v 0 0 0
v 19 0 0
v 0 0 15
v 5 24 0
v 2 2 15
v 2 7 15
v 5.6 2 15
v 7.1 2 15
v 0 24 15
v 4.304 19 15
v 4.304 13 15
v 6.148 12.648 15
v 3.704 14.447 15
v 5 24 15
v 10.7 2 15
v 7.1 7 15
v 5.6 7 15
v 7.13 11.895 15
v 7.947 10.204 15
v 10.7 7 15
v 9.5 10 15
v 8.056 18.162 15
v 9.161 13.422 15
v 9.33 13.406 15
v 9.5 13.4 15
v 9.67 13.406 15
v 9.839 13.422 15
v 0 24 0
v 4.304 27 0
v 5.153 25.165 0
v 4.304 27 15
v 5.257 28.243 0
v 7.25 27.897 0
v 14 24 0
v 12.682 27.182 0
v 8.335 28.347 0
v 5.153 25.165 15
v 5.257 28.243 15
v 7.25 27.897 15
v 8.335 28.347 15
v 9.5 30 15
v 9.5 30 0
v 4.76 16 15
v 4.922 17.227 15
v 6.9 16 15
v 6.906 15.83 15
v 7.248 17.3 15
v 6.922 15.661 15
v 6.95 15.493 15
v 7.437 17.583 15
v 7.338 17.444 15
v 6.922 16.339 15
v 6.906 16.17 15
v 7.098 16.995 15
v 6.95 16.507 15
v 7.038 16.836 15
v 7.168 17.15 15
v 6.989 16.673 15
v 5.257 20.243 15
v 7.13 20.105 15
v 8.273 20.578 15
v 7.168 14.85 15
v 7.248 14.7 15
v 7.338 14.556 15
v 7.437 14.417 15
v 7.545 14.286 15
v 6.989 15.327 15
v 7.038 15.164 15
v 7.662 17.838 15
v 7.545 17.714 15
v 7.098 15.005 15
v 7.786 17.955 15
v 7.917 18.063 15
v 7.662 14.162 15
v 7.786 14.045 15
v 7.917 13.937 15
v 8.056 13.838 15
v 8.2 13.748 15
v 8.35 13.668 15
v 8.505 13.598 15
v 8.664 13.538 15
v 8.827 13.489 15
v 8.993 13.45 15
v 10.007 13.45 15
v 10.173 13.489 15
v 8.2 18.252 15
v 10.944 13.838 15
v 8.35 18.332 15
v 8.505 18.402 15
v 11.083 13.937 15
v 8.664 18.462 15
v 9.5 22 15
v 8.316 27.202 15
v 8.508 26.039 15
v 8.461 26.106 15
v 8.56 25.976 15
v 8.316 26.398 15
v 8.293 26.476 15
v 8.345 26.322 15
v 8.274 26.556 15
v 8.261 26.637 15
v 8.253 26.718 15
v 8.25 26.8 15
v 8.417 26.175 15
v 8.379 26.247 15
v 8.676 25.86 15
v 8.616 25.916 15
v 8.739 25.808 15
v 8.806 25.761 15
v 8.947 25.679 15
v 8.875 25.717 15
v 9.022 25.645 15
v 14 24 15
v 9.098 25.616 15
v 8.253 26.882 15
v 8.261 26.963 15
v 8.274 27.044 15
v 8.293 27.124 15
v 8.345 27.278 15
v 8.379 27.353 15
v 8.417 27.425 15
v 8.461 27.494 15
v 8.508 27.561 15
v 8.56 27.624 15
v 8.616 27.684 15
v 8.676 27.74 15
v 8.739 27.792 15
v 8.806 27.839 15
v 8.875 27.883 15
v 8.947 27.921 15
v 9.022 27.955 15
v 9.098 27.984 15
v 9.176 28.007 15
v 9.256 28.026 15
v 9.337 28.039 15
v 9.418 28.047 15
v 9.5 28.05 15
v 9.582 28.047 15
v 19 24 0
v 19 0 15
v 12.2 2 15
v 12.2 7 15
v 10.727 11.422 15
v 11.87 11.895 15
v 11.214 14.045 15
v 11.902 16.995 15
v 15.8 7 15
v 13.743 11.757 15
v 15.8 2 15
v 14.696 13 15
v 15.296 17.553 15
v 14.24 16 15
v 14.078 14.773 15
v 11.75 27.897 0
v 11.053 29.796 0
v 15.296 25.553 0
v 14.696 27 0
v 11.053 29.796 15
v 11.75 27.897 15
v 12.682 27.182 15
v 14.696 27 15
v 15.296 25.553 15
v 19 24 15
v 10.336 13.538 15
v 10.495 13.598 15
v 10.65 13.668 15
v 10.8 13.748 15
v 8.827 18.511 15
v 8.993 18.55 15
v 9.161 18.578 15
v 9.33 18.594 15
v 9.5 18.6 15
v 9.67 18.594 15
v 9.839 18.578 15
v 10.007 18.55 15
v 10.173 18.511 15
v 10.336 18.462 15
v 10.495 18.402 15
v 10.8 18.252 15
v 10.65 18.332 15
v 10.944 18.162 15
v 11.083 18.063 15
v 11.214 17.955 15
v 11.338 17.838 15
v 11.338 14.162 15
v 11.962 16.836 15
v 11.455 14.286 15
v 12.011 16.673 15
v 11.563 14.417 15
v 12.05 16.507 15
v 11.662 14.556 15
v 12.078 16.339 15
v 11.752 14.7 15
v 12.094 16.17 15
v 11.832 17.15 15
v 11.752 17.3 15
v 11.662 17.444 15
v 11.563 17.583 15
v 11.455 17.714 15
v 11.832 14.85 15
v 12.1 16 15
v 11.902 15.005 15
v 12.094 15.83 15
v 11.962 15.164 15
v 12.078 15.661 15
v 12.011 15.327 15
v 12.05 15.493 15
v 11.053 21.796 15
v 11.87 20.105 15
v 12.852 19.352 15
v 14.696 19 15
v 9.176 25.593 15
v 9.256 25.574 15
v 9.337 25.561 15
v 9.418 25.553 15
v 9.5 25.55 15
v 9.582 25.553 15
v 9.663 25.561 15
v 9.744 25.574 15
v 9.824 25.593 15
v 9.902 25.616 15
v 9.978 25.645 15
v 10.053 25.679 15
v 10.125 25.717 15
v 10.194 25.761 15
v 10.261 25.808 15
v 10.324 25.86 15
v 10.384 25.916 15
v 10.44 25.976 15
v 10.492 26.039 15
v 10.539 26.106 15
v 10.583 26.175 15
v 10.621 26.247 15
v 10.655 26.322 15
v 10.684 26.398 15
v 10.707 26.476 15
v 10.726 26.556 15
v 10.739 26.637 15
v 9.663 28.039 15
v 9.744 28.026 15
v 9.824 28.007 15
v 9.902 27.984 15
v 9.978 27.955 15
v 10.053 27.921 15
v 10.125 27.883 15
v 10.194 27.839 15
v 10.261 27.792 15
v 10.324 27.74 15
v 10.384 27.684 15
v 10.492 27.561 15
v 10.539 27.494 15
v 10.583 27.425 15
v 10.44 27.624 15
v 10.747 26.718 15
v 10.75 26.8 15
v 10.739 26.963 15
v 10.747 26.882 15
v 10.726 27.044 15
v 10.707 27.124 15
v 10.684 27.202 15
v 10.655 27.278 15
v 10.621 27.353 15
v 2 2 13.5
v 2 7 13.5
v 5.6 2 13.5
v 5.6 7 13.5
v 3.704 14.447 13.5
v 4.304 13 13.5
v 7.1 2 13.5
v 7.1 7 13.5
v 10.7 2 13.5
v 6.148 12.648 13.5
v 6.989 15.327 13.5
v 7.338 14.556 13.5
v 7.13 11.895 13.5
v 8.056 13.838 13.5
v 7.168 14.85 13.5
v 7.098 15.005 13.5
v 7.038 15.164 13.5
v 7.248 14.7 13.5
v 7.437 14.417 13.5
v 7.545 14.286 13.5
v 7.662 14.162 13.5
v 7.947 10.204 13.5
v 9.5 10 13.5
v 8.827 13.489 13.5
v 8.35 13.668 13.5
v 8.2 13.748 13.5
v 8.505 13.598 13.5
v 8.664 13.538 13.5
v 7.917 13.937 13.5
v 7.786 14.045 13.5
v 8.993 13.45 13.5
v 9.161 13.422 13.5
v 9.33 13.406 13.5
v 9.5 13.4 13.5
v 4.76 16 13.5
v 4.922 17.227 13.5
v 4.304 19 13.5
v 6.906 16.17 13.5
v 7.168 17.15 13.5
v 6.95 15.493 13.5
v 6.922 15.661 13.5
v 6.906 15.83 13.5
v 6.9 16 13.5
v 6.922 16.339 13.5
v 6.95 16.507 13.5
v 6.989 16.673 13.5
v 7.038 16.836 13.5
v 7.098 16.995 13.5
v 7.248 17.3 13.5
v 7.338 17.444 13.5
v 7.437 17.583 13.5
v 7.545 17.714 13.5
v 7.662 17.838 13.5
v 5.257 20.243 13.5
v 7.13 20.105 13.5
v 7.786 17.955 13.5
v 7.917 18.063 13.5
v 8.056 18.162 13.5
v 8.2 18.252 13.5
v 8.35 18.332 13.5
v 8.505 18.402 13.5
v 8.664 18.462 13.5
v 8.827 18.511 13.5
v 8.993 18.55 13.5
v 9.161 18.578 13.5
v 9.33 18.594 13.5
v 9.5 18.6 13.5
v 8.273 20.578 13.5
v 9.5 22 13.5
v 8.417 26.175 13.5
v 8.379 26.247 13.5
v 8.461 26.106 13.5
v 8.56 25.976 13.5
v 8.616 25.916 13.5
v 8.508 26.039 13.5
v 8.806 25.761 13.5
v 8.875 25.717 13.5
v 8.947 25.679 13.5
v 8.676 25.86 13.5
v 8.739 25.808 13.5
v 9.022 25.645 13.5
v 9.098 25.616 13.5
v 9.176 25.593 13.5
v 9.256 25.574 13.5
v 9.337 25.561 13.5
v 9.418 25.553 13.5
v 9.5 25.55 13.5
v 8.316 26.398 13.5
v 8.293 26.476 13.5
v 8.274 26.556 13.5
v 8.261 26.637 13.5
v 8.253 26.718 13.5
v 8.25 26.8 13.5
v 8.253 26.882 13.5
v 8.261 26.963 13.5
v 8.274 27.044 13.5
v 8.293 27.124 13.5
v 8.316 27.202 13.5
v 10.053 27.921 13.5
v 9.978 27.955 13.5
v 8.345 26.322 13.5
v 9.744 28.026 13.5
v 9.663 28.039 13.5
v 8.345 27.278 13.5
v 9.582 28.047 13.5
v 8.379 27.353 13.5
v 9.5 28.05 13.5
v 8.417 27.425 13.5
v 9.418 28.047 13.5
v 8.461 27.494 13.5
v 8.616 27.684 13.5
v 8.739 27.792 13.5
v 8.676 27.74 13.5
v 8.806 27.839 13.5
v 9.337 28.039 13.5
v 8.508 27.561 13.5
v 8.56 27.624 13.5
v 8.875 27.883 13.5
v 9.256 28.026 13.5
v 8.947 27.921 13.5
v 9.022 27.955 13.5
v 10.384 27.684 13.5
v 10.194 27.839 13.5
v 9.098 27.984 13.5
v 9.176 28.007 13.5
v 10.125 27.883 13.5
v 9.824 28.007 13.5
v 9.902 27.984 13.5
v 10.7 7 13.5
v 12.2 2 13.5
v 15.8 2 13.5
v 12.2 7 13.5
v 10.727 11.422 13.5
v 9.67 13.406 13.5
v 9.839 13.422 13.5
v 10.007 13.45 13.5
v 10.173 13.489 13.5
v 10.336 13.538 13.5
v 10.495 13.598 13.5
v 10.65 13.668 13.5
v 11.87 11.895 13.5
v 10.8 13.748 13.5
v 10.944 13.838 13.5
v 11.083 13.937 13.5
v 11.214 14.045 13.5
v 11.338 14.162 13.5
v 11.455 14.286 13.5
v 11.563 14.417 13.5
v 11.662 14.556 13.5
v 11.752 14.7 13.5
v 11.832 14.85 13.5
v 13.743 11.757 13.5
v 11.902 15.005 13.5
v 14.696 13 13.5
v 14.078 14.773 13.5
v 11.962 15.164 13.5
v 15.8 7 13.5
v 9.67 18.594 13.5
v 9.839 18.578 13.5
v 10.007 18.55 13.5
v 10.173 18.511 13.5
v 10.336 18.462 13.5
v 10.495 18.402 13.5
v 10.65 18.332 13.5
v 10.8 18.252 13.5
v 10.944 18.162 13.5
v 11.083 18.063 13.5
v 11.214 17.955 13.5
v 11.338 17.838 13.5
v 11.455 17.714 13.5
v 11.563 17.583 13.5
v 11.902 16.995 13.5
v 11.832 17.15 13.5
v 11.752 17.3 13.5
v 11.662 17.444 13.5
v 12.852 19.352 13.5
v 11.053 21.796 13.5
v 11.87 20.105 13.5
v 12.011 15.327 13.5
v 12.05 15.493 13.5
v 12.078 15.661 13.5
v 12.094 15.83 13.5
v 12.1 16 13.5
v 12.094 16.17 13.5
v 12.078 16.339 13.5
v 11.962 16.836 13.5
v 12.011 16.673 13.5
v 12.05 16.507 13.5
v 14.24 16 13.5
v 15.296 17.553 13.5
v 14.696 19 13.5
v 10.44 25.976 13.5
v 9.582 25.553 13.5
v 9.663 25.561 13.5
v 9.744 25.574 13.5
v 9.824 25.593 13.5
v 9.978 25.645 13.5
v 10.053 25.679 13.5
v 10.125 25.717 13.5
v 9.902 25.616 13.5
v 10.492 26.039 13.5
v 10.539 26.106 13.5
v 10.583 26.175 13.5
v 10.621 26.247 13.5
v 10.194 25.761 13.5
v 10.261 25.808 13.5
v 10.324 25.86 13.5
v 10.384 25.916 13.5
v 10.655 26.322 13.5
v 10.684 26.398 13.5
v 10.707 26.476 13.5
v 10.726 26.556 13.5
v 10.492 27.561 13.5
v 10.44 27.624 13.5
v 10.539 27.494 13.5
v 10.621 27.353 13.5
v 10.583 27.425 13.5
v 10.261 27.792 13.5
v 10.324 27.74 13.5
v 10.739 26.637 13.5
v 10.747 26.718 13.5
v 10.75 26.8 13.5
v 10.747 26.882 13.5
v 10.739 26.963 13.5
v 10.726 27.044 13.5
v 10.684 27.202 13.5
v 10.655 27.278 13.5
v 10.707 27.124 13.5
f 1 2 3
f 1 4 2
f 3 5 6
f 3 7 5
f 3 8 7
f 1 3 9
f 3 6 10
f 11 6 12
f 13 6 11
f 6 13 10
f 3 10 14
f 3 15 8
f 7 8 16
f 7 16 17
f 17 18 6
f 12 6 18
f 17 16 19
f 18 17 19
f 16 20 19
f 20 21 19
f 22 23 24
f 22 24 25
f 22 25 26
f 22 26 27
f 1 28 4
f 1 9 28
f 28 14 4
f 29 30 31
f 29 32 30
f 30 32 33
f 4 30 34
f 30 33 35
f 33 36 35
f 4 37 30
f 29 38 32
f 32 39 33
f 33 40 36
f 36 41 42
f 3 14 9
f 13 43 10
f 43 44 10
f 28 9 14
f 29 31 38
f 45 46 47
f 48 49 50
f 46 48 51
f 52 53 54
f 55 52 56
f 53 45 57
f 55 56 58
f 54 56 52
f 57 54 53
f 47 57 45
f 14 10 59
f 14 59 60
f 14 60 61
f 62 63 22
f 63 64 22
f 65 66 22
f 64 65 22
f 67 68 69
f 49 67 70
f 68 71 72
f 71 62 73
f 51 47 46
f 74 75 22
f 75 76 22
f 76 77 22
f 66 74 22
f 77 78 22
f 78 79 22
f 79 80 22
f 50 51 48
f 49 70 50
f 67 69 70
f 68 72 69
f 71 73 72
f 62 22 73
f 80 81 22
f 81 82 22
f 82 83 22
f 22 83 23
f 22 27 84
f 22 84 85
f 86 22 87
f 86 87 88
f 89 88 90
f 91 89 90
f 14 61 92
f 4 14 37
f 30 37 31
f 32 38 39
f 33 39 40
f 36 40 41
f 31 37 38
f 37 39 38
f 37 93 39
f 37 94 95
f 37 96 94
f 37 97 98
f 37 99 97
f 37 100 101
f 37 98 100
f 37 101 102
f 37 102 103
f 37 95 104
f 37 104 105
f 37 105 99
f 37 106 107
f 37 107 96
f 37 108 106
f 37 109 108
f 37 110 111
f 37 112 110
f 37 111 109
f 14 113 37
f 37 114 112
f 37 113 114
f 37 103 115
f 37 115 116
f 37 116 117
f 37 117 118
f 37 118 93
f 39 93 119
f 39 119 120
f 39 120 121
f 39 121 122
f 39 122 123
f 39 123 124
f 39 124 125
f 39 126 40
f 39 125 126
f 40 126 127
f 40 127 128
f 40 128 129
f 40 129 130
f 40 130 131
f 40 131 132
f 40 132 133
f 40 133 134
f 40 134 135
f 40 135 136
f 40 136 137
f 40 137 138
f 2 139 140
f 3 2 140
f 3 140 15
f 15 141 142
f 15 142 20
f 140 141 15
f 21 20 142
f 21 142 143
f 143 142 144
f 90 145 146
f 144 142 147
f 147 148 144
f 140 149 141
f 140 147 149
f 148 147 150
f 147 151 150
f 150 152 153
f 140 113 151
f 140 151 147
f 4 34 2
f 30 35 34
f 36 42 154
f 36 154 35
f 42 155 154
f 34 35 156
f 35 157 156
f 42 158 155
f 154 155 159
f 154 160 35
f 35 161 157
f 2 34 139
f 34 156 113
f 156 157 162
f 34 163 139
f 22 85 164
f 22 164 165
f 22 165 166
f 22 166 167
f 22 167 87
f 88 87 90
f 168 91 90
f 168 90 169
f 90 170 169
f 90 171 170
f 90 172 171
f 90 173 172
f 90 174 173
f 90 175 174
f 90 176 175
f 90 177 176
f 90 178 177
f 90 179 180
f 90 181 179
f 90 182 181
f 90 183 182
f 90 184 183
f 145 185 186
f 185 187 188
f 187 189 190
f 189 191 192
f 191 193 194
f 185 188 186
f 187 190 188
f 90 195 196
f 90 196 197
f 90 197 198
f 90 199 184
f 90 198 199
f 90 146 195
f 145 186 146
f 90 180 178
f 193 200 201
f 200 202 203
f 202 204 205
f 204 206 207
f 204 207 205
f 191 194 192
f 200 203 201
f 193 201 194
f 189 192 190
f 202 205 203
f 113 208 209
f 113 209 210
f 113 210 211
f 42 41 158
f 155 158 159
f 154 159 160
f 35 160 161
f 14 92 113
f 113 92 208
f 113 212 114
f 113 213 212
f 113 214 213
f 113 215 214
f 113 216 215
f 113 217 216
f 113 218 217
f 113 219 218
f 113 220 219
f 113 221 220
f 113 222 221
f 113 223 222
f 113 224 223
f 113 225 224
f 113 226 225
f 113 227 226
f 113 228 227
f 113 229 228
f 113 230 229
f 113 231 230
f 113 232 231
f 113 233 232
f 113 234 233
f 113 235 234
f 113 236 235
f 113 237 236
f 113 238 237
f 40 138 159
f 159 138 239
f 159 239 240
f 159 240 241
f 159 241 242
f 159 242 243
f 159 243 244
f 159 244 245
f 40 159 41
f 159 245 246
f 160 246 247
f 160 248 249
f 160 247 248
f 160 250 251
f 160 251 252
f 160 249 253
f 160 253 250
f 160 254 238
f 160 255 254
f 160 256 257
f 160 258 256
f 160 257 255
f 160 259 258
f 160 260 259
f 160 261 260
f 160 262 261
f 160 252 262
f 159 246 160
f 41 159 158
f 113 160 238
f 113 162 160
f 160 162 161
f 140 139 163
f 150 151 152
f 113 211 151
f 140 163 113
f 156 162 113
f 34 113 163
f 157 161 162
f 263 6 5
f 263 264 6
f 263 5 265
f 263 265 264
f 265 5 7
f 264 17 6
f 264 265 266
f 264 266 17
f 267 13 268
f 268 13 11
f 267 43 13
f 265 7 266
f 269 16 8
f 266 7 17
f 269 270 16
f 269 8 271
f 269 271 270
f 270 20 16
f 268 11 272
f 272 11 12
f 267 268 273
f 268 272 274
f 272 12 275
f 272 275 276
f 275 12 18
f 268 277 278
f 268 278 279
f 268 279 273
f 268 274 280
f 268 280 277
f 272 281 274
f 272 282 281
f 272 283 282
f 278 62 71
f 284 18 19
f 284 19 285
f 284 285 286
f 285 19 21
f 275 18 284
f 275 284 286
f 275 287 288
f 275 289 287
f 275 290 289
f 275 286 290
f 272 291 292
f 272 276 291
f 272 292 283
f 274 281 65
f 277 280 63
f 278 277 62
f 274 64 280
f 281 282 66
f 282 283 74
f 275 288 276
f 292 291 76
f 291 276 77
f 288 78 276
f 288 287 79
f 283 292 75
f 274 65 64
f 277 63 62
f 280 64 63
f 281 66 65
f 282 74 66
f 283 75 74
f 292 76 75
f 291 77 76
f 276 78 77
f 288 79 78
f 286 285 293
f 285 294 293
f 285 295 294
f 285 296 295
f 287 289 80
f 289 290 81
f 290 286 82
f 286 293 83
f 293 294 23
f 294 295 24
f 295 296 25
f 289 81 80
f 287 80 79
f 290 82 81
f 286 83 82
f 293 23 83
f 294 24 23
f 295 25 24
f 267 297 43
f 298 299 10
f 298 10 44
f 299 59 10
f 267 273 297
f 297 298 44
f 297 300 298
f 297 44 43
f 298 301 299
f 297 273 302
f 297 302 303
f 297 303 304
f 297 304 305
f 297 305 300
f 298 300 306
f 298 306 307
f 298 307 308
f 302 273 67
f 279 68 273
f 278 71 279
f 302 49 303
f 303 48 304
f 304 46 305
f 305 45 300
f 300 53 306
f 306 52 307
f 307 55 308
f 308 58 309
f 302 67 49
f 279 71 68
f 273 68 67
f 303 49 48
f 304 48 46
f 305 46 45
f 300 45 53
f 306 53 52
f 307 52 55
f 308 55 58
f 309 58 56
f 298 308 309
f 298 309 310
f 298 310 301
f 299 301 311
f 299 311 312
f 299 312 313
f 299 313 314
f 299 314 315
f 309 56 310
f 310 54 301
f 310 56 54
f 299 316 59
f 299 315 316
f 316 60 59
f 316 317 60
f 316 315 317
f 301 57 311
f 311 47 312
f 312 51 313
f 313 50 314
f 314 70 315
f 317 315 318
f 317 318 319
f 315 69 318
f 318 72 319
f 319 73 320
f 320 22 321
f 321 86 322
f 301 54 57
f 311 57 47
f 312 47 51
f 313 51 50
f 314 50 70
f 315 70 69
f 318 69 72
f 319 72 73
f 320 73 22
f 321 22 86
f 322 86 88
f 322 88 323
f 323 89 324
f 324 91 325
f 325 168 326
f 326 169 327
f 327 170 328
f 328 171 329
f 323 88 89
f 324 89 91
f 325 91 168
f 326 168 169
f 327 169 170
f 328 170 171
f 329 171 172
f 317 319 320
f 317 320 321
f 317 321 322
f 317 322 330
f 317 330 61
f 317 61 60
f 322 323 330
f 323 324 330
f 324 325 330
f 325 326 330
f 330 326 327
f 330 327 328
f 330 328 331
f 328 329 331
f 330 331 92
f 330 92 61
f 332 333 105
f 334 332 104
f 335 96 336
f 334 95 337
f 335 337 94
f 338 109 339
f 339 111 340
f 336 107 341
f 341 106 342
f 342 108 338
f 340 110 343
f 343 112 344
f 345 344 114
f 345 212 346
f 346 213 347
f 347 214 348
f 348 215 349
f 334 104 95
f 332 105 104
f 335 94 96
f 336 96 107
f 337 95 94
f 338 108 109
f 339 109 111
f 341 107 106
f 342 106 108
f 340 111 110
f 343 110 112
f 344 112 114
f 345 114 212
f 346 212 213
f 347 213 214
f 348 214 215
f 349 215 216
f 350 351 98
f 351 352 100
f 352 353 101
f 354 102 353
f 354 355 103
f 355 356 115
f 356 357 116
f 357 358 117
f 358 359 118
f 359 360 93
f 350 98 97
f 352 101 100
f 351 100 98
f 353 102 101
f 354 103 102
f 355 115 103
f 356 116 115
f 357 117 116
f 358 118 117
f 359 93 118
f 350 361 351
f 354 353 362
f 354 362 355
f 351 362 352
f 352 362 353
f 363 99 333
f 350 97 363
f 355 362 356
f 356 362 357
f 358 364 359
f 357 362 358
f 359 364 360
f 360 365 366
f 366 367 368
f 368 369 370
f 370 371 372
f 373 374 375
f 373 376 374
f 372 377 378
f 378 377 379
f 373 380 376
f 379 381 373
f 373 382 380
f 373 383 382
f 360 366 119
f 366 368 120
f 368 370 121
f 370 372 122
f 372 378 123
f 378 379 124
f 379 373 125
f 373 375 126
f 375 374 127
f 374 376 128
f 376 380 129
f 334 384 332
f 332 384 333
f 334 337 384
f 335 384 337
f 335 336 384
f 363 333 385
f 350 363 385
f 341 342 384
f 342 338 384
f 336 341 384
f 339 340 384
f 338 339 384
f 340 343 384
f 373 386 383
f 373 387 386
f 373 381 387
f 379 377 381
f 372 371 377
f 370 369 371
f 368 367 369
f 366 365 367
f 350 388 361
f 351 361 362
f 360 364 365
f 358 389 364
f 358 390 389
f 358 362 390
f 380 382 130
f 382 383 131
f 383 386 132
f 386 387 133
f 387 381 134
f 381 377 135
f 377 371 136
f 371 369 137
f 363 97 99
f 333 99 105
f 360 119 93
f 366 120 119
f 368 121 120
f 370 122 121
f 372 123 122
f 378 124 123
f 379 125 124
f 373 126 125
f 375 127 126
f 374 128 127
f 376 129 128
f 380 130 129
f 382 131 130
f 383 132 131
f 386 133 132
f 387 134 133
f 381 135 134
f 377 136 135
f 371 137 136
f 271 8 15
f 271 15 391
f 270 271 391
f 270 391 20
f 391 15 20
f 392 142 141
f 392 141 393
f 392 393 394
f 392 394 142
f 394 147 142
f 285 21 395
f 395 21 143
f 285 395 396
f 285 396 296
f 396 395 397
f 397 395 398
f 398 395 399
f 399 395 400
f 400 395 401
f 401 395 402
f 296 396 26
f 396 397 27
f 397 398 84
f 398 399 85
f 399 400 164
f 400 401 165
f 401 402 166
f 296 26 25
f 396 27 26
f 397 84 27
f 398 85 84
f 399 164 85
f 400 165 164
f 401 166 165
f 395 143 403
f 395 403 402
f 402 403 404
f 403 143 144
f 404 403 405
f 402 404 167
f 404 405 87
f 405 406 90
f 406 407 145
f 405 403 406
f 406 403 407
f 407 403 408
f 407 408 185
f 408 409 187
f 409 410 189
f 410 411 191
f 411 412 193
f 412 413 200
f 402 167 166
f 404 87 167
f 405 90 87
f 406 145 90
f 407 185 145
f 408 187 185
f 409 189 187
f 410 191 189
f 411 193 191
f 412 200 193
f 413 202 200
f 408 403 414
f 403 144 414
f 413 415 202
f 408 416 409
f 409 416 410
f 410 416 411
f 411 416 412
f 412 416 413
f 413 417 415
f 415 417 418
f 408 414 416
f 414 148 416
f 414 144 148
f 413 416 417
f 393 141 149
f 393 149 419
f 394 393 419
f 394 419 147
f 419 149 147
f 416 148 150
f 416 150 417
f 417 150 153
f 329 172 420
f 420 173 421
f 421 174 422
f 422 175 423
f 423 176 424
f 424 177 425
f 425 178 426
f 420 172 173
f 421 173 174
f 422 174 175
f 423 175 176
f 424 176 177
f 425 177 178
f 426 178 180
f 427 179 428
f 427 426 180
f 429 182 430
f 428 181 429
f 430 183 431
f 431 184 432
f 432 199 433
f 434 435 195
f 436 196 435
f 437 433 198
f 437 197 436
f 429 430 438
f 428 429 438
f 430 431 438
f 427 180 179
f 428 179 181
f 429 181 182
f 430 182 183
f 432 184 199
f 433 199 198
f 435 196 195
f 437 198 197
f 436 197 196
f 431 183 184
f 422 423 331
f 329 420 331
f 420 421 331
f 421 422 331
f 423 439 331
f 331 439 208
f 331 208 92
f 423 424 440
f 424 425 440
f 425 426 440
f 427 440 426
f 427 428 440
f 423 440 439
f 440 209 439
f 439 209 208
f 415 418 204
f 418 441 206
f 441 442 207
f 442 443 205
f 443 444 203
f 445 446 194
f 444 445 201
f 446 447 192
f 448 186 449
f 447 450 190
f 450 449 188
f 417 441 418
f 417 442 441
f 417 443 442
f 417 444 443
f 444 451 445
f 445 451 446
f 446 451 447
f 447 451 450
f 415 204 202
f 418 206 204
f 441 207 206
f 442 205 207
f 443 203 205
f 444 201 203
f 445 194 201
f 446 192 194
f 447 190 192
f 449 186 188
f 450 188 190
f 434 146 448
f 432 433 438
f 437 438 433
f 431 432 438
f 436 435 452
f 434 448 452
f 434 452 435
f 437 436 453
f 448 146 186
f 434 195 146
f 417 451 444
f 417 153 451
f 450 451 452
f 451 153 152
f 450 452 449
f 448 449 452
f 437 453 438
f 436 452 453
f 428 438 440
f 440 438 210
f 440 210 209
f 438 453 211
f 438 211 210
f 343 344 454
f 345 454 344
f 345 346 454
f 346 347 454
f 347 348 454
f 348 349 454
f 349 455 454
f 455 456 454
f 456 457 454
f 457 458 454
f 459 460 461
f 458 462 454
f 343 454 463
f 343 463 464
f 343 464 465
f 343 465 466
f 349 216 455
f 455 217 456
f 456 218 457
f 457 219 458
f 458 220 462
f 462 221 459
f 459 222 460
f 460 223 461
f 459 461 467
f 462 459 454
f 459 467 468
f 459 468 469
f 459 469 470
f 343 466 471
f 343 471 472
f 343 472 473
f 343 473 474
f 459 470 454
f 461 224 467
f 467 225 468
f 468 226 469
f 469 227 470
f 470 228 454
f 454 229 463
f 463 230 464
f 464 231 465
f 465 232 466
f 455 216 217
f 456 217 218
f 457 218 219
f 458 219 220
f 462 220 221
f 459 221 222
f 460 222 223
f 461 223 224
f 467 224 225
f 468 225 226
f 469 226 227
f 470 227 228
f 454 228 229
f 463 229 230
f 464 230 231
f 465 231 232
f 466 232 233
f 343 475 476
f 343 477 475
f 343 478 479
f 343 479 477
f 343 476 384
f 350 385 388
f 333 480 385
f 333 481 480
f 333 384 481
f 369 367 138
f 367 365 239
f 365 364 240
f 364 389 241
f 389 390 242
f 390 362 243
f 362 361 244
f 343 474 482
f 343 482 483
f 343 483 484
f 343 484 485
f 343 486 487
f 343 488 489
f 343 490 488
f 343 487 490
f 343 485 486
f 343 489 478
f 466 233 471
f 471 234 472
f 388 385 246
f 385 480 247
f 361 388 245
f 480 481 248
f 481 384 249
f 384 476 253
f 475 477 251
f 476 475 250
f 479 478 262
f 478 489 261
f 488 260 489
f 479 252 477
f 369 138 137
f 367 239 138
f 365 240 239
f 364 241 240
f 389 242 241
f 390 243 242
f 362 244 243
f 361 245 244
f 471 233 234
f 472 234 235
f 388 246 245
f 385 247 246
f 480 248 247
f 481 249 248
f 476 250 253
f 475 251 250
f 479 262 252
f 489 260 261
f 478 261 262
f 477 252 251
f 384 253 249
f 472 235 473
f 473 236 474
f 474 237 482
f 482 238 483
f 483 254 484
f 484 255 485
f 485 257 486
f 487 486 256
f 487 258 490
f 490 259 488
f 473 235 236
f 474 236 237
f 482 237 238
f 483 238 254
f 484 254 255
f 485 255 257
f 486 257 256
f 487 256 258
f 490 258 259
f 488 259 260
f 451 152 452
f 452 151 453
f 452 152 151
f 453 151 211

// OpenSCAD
// Building facade miniature for board games.
// Millimetres. X=width, Y=height, Z=depth.
// Print flat at Z=0; straight base at Y=0; front at Z=15.
// All recesses are blind and 1.5 mm deep. This is a solid piece.
$fn=96;
depth=15;
recess=1.5;
module rect(x,y,w,h) { translate([x,y]) square([w,h]); }
module disc(x,y,r) { translate([x,y]) circle(r=r); }
module line(a,b,w=1.4) {
    hull() { translate(a) circle(d=w); translate(b) circle(d=w); }
}
module frame(x,y,w,h,t=1.4) {
    difference() { rect(x,y,w,h); rect(x+t,y+t,w-2*t,h-2*t); }
}
module gear(x,y,r=6,inner=2.4) {
    translate([x,y]) difference() {
        polygon([for(i=[0:(r<4?15:23)]) let(n=(r<4?16:24),a=(i+1)*360/n,rr=(i%4<2?r:r-min(1.5,r*0.21))) [rr*cos(a),rr*sin(a)]]);
        circle(r=inner);
    }
}
module car(x,y,w=14,h=5) {
    translate([x,y]) union() {
        polygon([[0,0.8],[0,h*0.48],[w*0.2,h*0.48],
                 [w*0.35,h],[w*0.67,h],[w*0.82,h*0.48],
                 [w,h*0.35],[w,0.8]]);
        disc(w*0.23,0.8,1.3); disc(w*0.77,0.8,1.3);
    }
}
module recycling(x,y,r=6) {
    translate([x,y]) for(a=[0,120,240]) rotate(a) {
        line([-3.8,3.2],[1.2,3.2],1.6);
        polygon([[1.2,1.7],[4.2,3.2],[1.2,4.7]]);
    }
}
module cutface() { translate([0,0,depth-recess]) linear_extrude(height=recess+0.5) facade(); }
// All details are recessed into the same solid facade.
difference() {
    linear_extrude(height=depth) outline();
    cutface();
}


module outline() {
    union() {
        rect(0,0,19,24);
        translate([9.5,24]) polygon([for(i=[0:23]) let(a=(i+1)*360/24,rr=(i%4<2?6:4.5)) [rr*cos(a),rr*sin(a)]]);
    }
}
module facade() {
    gear(9.5,16,6,2.6);
    for(x=[2,7.1,12.2]) rect(x,2,3.6,5);
    disc(9.5,26.8,1.25);
}
